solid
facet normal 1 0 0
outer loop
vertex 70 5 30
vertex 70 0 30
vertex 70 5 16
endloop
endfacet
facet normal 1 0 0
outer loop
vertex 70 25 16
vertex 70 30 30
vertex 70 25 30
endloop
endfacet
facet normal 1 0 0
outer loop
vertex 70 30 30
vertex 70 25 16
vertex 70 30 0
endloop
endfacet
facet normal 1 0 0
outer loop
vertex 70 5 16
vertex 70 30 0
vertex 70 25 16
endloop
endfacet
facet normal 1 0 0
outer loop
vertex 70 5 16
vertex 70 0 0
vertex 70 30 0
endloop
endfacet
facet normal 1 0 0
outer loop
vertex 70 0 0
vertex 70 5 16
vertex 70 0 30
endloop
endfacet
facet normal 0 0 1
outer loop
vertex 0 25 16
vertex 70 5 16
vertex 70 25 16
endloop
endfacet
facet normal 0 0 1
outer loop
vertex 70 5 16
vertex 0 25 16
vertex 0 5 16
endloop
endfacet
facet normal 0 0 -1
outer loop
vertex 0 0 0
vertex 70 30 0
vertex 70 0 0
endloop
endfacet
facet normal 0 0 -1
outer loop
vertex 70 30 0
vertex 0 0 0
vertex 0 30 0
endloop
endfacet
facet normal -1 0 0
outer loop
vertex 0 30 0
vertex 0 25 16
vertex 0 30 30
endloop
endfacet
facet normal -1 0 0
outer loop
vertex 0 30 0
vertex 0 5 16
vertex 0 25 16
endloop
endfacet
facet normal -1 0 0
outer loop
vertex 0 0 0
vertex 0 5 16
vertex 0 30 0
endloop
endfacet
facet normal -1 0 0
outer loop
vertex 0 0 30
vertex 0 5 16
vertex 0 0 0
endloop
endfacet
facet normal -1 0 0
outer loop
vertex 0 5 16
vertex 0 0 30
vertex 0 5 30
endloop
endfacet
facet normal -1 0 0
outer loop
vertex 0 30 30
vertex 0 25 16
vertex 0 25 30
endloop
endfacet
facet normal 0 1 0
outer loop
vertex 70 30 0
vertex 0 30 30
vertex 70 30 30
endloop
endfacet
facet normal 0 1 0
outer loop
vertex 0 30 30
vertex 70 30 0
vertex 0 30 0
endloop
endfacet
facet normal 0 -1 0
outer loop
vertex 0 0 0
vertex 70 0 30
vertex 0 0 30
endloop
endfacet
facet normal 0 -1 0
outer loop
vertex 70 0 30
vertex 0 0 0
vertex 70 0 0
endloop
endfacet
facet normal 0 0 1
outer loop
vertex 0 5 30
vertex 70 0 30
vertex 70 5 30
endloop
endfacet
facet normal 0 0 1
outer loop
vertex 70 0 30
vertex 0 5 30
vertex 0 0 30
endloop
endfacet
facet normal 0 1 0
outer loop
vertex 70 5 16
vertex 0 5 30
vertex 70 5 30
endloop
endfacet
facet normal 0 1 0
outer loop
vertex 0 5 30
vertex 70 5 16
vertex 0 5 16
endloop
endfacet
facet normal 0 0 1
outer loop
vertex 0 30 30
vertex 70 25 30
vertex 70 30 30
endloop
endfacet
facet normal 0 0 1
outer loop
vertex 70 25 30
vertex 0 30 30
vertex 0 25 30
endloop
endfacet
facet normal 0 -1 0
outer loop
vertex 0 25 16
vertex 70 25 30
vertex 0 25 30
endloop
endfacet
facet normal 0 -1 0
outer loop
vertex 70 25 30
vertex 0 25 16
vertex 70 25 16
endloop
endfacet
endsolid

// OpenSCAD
// Dimensions
base_length = 70;  // Increased length of the base block to match the original model
base_width = 30;   // Width of the base block remains the same
base_height = 16;  // Adjusted height of the base block to match the original model

side_wall_thickness = 5;  // Adjusted thickness of the side walls to match the original model
side_wall_height = 14;    // Increased height of the side walls to match the original model

slot_width = base_width - 2 * side_wall_thickness;  // Adjusted width of the central slot
slot_depth = 14;  // Increased depth of the central slot to match the original model

// Base block with sharper edges
module base_block() {
    cube([base_length, base_width, base_height], center = false);
}

// Side walls with sharper top edges
module side_wall() {
    cube([base_length, side_wall_thickness, side_wall_height], center = false);
}

// Central slot with a flatter bottom profile
module central_slot() {
    translate([0, side_wall_thickness, 0])
        cube([base_length, slot_width, slot_depth], center = false);
}

// Assembling the model
module flexible_coupling() {
    // Base block
    base_block();

    // Side walls
    translate([0, 0, base_height])
        side_wall();
    translate([0, base_width - side_wall_thickness, base_height])
        side_wall();

    // Central slot
    translate([0, 0, base_height - slot_depth])
        central_slot();
}

// Render the model
flexible_coupling();
